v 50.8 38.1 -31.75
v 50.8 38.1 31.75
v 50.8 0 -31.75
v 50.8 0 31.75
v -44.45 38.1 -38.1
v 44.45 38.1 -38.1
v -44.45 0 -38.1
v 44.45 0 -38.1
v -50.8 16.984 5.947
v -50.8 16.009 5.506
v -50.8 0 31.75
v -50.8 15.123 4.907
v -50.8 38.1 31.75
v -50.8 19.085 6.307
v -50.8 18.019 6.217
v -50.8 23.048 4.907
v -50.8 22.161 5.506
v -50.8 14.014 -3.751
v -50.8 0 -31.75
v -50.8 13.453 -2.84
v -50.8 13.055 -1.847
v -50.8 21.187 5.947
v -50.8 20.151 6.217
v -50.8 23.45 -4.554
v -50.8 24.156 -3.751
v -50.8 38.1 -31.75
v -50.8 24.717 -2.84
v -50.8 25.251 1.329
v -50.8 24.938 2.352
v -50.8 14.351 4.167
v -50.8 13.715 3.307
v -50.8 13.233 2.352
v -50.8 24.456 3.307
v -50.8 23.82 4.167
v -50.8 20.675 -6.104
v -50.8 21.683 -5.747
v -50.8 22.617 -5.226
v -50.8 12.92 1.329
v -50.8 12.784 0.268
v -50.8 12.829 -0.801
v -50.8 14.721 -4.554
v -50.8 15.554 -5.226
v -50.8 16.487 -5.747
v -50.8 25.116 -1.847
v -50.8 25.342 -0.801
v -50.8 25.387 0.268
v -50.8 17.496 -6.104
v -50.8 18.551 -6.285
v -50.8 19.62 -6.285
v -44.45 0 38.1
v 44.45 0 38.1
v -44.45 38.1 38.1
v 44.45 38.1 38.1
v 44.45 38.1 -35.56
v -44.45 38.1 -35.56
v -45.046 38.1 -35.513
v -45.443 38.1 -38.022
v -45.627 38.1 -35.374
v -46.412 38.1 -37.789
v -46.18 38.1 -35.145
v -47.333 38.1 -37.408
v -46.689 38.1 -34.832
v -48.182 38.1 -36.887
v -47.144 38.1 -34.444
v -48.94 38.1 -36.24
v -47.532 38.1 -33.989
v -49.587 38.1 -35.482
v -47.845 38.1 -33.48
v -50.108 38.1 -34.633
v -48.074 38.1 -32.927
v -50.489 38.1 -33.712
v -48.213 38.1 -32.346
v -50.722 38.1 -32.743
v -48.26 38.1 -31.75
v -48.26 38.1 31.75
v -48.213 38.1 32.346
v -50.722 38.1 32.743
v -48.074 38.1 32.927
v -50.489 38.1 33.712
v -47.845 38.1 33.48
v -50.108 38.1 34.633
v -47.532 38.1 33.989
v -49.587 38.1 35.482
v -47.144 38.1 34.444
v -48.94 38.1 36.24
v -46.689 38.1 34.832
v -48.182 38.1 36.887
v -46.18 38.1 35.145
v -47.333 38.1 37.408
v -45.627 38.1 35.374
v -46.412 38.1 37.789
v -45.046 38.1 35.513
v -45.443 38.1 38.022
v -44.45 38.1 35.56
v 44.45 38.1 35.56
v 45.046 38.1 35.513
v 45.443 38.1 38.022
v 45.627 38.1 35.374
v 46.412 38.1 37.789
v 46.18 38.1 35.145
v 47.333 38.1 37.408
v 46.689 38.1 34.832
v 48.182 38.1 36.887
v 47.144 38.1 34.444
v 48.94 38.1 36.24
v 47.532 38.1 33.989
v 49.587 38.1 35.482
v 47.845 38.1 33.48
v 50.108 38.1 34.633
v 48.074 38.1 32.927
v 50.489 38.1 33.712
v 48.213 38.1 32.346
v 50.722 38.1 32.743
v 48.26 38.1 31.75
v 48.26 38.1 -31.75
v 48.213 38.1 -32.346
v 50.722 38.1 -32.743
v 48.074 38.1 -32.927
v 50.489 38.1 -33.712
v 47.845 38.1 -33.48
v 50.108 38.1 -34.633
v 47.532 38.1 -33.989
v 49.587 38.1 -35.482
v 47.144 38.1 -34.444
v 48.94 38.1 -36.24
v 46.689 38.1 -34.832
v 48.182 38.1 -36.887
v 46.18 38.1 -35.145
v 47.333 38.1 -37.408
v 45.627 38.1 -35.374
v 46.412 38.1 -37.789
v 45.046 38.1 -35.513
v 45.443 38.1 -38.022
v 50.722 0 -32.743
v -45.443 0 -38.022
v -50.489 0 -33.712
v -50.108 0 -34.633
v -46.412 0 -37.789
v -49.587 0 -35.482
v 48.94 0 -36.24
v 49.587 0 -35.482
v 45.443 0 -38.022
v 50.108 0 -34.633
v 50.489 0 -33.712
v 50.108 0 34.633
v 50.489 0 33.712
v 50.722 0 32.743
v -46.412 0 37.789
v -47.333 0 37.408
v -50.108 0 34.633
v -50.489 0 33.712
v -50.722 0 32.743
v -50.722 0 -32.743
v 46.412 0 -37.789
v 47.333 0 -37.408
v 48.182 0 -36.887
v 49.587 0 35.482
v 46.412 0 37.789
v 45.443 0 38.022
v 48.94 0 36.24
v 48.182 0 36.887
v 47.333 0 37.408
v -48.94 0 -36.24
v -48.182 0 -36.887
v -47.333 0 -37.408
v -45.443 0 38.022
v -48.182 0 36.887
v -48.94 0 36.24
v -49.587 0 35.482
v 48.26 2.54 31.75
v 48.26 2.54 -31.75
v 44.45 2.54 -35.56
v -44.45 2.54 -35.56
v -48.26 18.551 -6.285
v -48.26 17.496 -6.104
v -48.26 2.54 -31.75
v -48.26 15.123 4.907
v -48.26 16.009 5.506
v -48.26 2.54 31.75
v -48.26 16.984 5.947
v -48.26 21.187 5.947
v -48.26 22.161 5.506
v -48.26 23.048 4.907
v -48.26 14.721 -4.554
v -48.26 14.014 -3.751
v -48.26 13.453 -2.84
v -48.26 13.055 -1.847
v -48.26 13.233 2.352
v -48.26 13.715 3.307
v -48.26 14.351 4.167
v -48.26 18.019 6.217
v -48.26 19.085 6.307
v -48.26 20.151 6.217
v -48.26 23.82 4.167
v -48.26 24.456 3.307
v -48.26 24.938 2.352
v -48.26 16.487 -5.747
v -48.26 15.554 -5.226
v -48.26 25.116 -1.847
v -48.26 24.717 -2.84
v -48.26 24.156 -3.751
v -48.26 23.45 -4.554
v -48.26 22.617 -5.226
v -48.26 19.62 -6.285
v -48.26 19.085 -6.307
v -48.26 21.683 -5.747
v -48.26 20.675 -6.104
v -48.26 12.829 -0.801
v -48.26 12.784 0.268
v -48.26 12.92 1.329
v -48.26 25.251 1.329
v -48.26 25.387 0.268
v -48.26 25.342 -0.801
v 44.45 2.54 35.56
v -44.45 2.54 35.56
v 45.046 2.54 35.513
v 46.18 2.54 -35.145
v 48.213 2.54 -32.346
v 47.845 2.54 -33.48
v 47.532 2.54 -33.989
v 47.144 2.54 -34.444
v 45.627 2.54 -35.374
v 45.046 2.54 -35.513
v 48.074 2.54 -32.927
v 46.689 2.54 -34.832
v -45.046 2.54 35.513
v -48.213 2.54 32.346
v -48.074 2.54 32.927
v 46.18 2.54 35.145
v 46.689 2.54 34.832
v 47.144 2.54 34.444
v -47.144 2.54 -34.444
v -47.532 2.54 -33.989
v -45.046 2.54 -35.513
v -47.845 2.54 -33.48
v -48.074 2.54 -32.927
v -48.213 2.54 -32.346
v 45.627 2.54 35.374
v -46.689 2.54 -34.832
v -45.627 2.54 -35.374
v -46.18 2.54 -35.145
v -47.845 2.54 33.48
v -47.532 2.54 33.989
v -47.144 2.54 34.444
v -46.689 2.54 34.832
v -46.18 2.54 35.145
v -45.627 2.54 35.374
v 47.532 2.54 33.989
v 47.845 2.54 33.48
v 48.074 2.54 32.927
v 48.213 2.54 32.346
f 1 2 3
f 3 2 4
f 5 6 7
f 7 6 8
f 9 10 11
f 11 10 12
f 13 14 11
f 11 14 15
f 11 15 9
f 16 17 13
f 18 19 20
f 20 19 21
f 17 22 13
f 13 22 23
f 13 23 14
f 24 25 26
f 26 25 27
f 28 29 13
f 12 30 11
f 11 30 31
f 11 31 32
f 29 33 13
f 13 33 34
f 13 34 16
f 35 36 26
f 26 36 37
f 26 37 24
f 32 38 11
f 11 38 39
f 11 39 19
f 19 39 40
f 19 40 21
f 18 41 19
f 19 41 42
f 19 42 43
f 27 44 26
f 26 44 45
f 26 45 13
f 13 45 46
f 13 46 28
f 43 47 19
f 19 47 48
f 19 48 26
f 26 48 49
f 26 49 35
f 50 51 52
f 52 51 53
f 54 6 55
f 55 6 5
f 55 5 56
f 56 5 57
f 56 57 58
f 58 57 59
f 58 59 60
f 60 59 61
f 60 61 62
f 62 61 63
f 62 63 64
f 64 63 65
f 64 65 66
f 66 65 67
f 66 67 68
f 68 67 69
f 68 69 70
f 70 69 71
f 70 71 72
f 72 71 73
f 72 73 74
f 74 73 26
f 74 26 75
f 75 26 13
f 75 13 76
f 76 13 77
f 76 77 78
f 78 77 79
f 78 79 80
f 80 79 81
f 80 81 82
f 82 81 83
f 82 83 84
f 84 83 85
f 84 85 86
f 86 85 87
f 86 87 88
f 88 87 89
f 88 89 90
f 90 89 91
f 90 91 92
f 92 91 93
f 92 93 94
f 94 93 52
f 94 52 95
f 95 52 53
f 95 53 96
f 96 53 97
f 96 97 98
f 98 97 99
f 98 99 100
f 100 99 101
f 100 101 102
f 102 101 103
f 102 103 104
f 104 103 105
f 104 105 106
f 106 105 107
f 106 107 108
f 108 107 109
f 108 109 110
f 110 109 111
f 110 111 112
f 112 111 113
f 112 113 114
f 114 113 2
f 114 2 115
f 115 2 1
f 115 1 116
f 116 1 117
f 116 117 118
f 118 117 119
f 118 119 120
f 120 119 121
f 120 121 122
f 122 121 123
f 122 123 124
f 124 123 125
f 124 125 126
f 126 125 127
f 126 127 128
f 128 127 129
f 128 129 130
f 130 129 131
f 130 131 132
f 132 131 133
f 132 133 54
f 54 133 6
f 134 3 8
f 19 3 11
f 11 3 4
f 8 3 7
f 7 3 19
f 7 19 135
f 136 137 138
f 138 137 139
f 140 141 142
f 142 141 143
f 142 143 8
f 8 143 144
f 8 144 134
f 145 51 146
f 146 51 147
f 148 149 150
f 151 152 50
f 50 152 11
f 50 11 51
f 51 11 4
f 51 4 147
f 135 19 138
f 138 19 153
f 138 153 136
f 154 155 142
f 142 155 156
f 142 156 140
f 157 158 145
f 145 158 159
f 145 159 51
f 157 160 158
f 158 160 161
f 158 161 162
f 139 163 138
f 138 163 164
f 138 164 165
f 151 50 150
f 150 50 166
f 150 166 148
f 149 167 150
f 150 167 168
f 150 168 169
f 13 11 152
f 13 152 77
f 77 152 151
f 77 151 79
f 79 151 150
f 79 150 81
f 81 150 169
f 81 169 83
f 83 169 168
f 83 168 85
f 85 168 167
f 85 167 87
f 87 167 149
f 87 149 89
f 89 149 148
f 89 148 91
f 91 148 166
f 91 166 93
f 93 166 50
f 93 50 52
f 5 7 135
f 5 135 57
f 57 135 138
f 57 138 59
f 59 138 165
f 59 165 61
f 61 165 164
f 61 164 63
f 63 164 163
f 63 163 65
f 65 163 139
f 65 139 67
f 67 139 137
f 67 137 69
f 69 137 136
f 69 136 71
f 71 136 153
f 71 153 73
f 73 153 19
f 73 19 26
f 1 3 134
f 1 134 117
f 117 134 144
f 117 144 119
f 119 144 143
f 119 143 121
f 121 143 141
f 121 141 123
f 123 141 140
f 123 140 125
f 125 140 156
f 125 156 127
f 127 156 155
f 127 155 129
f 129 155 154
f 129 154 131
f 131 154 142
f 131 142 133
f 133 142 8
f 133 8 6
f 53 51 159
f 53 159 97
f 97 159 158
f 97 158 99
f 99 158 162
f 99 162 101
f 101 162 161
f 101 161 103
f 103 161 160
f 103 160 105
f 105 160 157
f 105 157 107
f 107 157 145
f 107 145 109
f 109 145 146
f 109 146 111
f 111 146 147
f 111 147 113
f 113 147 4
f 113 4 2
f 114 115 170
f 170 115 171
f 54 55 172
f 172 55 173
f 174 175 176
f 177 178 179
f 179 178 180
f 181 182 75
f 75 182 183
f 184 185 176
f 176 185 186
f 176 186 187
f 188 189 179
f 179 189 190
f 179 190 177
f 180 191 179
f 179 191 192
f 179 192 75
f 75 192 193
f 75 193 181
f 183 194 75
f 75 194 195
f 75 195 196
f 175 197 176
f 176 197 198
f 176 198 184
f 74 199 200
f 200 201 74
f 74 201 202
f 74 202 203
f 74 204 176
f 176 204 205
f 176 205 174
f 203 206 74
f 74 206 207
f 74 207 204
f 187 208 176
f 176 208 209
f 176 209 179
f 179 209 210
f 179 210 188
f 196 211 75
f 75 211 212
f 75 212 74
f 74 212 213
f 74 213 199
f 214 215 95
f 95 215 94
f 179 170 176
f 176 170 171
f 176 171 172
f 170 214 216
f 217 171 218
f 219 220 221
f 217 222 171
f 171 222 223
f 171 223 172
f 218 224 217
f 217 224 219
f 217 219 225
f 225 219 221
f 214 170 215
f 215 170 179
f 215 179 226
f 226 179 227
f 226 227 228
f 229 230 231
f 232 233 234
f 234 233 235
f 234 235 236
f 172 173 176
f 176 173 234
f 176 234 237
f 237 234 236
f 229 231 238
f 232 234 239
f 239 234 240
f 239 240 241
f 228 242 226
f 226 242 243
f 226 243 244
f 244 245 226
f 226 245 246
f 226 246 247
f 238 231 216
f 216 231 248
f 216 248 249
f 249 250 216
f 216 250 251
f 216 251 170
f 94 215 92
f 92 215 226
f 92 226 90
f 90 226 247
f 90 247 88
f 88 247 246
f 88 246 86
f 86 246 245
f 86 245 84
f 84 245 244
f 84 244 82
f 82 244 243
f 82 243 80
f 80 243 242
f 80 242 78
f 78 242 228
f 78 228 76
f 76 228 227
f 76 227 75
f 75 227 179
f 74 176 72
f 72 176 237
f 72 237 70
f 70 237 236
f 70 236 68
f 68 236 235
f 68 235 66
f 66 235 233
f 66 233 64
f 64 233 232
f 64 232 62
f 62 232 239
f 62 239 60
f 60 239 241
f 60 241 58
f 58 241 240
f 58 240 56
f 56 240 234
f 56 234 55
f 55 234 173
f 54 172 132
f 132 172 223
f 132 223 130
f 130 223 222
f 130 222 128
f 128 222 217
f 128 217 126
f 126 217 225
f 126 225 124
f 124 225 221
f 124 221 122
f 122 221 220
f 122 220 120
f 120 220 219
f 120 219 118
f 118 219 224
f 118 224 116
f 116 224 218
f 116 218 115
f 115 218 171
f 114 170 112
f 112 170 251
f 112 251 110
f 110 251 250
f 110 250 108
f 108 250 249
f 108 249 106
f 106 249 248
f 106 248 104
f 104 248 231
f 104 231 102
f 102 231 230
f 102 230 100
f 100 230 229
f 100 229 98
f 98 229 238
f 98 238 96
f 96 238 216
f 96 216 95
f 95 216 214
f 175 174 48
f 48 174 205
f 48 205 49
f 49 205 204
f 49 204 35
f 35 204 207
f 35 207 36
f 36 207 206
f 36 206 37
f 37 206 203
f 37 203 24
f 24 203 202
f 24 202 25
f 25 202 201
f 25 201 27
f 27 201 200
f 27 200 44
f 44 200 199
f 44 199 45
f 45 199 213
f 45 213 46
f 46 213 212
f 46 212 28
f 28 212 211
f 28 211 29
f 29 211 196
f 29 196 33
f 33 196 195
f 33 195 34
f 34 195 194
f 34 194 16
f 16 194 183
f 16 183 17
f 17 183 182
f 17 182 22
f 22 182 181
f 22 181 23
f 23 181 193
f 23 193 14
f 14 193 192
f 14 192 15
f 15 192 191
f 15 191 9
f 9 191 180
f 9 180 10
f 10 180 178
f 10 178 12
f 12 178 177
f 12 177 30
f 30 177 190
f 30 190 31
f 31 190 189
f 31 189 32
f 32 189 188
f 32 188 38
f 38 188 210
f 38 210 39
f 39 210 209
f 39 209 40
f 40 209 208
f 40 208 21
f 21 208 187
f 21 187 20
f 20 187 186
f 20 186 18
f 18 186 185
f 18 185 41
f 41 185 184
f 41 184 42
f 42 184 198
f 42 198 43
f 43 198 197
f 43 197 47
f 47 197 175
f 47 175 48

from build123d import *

# Parameters (mm, degrees)
SKETCH1_W        = 101.6
SKETCH1_H        = 76.2
BODY_DEPTH       = 38.1
CORNER_FILLETS_R = 6.35
SHELL_T          = -2.54
CABLE_HOLE_REACH = 117.003
SKETCH2_R        = 6.307285196


with BuildPart() as part:
    # Sketch1 → Body (new body)
    with BuildSketch(Plane(origin=(0, 0, 0), x_dir=(1, 0, 0), z_dir=(0, 1, 0))):
        Rectangle(SKETCH1_W, SKETCH1_H)
    extrude(amount=BODY_DEPTH)

    # Corner Fillets
    corner_fillets_edges = [part.edges().sort_by_distance(p)[0] for p in [
        (50.8, 19.05, 38.1),
        (-50.8, 19.05, 38.1),
        (-50.8, 19.05, -38.1),
        (50.8, 19.05, -38.1),
    ]]
    fillet(corner_fillets_edges, radius=CORNER_FILLETS_R)

    # Shell
    shell_openings = [part.faces().sort_by_distance(p)[0] for p in [
        (0, 38.1, 0),
    ]]
    offset(amount=SHELL_T, openings=shell_openings, kind=Kind.INTERSECTION)

    # Sketch2 → Cable Hole (cut, up to next)
    with BuildSketch(Plane.ZY.offset(50.8), mode=Mode.PRIVATE) as cable_hole_sk1:
        with Locations((0, 19.085434186)):
            Circle(SKETCH2_R)
    cable_hole_tool1 = extrude(cable_hole_sk1.sketch, amount=-CABLE_HOLE_REACH, mode=Mode.PRIVATE) & part.part
    add(cable_hole_tool1.solids().sort_by_distance((-50.8, 19.085434, 0))[0], mode=Mode.SUBTRACT)


solid = part.part
